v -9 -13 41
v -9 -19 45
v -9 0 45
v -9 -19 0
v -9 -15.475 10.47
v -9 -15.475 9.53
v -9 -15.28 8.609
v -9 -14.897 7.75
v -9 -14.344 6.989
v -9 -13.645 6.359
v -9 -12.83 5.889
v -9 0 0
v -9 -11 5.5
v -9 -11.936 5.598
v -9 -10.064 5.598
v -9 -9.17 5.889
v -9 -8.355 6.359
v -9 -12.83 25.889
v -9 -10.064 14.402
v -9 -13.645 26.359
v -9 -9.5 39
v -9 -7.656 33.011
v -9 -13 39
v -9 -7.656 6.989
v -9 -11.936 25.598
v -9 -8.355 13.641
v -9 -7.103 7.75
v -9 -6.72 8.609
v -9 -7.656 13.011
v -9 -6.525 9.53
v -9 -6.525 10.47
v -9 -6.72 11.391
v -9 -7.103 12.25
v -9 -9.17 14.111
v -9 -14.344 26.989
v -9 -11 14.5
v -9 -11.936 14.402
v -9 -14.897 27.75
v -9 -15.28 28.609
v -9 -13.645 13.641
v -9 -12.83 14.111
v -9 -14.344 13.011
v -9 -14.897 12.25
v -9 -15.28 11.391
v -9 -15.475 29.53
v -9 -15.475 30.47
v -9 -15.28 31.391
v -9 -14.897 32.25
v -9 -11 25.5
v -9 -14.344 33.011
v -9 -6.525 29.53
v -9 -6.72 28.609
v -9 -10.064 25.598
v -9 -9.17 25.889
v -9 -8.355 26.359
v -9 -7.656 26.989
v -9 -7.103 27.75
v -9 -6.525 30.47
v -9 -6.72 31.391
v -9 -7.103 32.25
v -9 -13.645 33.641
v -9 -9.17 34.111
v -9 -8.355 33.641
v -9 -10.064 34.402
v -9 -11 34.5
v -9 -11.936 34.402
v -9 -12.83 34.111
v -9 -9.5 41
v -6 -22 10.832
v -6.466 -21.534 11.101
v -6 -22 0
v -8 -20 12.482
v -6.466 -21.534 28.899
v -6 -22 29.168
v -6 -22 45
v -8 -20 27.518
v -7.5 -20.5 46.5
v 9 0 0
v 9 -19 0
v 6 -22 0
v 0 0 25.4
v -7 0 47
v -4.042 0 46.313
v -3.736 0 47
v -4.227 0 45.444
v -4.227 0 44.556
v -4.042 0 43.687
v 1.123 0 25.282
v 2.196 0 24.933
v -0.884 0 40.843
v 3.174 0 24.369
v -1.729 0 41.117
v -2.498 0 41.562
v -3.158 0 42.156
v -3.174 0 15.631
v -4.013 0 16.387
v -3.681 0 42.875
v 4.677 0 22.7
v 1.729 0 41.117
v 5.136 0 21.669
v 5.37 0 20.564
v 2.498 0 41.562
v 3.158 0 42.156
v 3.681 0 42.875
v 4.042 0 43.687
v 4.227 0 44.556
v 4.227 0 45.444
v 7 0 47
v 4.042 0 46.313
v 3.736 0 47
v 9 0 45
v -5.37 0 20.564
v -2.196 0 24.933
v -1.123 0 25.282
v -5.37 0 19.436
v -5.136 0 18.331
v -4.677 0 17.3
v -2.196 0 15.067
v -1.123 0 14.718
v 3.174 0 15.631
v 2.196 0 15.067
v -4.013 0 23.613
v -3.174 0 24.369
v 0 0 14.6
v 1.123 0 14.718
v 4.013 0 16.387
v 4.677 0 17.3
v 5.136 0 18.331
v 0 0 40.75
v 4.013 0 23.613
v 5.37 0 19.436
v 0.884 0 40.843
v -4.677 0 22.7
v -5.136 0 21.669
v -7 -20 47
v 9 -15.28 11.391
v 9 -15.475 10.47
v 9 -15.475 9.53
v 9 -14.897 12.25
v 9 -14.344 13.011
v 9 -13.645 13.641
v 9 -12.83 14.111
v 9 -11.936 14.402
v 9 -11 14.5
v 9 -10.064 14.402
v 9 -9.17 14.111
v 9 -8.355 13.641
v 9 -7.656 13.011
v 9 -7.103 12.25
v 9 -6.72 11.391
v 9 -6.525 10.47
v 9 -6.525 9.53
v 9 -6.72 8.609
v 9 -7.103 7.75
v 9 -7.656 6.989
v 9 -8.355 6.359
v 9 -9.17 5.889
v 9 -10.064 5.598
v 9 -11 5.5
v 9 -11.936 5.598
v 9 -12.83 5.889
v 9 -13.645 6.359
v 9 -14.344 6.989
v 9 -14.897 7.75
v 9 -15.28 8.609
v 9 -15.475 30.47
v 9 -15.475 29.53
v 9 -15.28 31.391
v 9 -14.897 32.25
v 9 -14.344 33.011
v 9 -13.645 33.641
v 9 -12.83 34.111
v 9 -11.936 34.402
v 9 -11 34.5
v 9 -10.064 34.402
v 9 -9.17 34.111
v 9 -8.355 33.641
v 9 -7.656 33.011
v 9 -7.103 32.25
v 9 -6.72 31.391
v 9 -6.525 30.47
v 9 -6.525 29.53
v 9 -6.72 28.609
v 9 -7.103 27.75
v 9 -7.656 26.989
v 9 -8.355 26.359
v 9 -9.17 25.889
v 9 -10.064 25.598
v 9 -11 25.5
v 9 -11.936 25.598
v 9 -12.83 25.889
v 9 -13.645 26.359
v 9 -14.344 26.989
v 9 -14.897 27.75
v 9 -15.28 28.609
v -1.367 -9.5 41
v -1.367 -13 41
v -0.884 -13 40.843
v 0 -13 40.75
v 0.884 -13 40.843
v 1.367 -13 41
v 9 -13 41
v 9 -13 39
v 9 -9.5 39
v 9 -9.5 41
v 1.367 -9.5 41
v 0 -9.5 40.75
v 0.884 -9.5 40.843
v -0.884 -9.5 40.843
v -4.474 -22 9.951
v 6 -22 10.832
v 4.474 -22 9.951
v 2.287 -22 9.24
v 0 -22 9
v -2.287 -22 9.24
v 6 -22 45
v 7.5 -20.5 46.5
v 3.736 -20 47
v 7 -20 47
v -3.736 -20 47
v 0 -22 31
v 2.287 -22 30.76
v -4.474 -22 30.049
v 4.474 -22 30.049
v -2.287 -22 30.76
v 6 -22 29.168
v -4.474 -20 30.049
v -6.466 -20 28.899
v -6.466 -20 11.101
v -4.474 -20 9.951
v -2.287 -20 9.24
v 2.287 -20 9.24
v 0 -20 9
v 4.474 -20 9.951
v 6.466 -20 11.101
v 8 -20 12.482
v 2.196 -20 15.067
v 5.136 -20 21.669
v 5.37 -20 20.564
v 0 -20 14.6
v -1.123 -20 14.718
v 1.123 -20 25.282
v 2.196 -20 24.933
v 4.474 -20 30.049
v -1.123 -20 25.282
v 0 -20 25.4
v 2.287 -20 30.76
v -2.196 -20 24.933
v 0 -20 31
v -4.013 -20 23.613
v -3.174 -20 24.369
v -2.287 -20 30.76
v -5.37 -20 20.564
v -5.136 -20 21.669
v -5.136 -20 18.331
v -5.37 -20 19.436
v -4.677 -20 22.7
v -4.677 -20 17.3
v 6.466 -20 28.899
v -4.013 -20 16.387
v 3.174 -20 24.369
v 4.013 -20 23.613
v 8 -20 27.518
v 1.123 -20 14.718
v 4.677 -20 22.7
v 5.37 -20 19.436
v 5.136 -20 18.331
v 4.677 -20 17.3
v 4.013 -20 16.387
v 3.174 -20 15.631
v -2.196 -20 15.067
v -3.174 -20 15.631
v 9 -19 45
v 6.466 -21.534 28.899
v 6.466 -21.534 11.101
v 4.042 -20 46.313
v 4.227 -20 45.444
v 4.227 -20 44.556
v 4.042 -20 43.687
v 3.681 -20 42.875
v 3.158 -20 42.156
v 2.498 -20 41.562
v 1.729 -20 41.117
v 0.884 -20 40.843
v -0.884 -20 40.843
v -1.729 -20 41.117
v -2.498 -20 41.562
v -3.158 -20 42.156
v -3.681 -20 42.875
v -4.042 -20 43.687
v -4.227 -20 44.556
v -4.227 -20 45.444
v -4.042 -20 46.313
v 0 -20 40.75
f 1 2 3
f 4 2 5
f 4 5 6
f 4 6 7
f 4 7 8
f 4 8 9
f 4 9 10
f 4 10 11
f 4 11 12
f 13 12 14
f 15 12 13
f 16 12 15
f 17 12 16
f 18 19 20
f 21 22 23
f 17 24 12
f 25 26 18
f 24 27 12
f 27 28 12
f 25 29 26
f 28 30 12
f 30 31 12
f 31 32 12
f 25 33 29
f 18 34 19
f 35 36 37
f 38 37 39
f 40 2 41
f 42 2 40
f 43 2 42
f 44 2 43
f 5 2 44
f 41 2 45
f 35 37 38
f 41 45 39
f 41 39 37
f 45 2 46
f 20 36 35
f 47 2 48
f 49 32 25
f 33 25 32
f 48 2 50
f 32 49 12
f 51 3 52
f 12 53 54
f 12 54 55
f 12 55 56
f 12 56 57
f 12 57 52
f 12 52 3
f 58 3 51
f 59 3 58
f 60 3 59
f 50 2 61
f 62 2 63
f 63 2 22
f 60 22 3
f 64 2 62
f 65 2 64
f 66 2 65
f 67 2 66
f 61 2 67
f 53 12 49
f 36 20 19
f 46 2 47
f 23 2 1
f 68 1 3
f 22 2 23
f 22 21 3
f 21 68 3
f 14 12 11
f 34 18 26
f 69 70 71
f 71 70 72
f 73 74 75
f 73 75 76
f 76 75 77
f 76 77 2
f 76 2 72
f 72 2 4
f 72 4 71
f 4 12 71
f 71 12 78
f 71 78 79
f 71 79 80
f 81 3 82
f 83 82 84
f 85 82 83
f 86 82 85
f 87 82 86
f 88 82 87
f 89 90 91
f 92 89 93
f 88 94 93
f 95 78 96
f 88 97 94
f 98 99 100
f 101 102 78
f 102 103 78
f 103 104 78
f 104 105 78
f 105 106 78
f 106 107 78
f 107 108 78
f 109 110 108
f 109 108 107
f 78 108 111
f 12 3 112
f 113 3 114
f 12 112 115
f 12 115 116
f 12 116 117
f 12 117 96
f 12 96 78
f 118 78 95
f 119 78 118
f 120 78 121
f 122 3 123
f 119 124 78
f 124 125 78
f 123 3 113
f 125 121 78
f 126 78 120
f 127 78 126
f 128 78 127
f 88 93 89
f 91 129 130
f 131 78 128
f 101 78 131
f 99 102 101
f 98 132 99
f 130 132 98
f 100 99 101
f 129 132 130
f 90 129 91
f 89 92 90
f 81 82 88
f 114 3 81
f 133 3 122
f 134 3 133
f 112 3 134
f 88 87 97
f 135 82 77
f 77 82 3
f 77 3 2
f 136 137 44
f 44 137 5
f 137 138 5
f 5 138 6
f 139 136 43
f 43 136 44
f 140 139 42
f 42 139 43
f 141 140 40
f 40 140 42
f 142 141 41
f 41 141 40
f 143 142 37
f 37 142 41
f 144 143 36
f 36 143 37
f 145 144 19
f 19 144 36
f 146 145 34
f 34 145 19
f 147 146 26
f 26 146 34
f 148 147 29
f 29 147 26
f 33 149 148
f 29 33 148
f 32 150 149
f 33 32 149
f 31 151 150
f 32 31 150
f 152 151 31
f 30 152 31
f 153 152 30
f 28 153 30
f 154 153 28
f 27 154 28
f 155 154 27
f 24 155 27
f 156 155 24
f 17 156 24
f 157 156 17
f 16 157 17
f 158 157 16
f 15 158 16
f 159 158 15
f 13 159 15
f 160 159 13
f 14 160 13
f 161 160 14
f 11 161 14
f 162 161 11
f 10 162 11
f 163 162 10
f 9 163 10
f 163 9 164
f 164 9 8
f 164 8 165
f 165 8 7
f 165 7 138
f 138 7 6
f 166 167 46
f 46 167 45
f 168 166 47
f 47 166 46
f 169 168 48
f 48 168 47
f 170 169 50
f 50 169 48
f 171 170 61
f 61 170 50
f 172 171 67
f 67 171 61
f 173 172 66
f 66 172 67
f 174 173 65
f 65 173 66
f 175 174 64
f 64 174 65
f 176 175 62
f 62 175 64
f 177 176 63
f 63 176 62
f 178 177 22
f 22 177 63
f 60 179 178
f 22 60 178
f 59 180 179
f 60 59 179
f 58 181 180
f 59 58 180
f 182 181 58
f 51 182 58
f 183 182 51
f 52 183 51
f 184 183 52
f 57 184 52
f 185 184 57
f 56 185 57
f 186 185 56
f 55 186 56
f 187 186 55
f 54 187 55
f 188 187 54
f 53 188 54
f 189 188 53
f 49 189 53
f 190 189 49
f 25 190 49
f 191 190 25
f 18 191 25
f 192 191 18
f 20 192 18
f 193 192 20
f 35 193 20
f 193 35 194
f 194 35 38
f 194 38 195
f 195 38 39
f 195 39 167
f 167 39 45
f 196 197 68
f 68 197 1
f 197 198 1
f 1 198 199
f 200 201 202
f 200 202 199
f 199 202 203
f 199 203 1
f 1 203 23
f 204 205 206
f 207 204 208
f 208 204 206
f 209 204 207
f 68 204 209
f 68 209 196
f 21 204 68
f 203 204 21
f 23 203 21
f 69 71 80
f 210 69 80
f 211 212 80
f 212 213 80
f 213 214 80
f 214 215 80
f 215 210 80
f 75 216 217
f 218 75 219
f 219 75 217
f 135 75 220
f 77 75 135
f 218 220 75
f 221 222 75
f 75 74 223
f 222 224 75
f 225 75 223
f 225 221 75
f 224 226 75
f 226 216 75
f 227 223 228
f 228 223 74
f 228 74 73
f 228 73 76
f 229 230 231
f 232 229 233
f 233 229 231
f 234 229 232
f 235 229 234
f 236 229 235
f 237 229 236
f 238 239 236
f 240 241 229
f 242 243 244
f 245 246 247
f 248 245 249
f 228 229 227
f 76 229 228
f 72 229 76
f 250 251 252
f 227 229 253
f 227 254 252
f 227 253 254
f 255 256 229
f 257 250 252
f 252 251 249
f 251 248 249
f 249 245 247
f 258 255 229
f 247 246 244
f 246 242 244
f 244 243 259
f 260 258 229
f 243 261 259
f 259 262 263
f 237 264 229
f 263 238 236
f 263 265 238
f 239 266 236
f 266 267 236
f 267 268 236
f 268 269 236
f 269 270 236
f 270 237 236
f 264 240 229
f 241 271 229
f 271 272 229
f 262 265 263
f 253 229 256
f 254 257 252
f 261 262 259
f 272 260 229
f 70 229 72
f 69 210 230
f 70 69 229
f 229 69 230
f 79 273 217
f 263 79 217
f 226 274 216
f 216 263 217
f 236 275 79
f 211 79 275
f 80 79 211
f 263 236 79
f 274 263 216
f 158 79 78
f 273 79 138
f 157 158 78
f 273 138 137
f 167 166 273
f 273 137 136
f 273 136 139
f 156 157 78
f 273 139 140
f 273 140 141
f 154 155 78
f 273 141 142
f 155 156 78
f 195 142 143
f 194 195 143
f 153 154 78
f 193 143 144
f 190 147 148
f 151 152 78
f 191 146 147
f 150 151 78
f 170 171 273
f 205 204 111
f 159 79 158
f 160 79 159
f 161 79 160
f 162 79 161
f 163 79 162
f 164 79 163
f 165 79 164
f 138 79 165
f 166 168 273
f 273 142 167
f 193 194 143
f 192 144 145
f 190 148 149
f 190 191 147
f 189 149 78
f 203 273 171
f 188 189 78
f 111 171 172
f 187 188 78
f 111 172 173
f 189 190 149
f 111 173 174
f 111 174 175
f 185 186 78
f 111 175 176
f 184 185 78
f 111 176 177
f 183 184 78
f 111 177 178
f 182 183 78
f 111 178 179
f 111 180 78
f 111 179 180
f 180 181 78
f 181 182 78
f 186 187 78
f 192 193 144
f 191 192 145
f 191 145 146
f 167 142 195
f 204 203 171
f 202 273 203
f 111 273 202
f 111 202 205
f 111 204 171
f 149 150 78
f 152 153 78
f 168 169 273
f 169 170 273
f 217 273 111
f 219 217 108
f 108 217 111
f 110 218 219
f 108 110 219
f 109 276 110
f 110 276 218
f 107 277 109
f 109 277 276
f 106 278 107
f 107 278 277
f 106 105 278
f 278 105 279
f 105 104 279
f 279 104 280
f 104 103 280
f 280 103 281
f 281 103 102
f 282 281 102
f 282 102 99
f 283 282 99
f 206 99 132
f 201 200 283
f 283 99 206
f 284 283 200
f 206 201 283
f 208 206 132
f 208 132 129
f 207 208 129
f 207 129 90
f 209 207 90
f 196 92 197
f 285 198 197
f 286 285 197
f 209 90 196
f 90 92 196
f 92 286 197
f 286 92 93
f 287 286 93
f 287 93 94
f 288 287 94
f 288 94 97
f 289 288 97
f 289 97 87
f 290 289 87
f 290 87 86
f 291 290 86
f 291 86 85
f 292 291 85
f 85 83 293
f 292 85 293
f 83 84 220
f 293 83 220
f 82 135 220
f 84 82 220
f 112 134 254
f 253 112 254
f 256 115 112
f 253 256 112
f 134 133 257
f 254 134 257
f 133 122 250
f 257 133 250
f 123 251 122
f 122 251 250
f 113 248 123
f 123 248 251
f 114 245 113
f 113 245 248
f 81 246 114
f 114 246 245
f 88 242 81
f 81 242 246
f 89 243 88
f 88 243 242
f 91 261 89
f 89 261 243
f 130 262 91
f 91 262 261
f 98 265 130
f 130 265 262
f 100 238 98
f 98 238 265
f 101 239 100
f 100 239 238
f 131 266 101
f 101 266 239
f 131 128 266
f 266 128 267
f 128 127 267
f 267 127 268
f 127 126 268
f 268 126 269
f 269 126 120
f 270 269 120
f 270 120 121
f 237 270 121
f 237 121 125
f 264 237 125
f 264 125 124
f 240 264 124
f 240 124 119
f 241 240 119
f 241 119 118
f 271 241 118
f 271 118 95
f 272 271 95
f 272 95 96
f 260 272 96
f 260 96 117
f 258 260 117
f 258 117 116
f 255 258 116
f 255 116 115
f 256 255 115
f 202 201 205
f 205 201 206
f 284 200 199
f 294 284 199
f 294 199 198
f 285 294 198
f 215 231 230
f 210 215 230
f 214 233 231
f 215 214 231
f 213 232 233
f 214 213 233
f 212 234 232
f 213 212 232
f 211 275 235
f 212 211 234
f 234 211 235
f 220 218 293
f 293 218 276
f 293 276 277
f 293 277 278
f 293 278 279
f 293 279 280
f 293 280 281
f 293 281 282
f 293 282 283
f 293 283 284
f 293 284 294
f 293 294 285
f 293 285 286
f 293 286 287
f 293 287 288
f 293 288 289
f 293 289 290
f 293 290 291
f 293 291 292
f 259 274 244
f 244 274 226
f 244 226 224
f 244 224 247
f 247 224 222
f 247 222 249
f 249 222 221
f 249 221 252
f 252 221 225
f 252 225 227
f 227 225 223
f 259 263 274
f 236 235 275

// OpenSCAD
// file: inc/inc/functions.scad
// PRUSA iteration3
// Functions used in many files
// GNU GPL v3
// Josef Průša <josefprusa@me.com>
// Václav 'ax' Hůla <axtheb@gmail.com>
// Vlnofka <>
// http://www.reprap.org/wiki/Prusa_Mendel
// http://github.com/prusajr/PrusaMendel

module roundcorner(diameter){
	difference(){
		cube(size = [diameter,diameter,99], center = false);
		translate(v = [diameter, diameter, 0]) cylinder(h = 100, r=diameter, center=true);
	}
}
module nut(d,h,horizontal=true){
    cornerdiameter =  (d / 2) / cos (180 / 6);
    cylinder(h = h, r = cornerdiameter, $fn = 6);
    if(horizontal){
        for(i = [1:6]){
            rotate([0,0,60*i]) translate([-cornerdiameter-0.2,0,0]) rotate([0,0,-45]) cube([2,2,h]);
        }
    }
}

// Based on nophead research
module polyhole(d, h, center=false) {
    n = max(round(2 * d),3);
    rotate([0,0,180])
        cylinder(h = h, r = (d / 2) / cos (180 / n), $fn = n);
}

// make it interchangeable between this and cylinder
module cylinder_poly(r, h, center=false){
    polyhole(d=r*2, h=h, center=center);
}

module fillet(radius, height=100, $fn=0) {
    //this creates acutal fillet
    translate([-radius, -radius, -height/2-0.01])
        difference() {
            cube([radius*2, radius*2, height+0.02]);
            cylinder(r=radius, h=height+0.02, $fn=$fn);
        }
}

module cube_fillet(size, radius=-1, vertical=[3,3,3,3], top=[0,0,0,0], bottom=[0,0,0,0], center=false, $fn=0){
    //
    if (center) {
        cube_fillet_inside(size, radius, vertical, top, bottom, $fn);
    } else {
        translate([size[0]/2, size[1]/2, size[2]/2])
            cube_fillet_inside(size, radius, vertical, top, bottom, $fn);
    }
}

module cube_negative_fillet(size, radius=-1, vertical=[3,3,3,3], top=[0,0,0,0], bottom=[0,0,0,0], $fn=0){

    j=[1,0,1,0];

    for (i=[0:3]) {
        if (radius > -1) {
            rotate([0, 0, 90*i]) translate([size[1-j[i]]/2, size[j[i]]/2, 0]) fillet(radius, size[2], $fn=$fn);
        } else {
            rotate([0, 0, 90*i]) translate([size[1-j[i]]/2, size[j[i]]/2, 0]) fillet(vertical[i], size[2], $fn=$fn);
        }
        rotate([90*i, -90, 0]) translate([size[2]/2, size[j[i]]/2, 0 ]) fillet(top[i], size[1-j[i]], $fn=$fn);
        rotate([90*(4-i), 90, 0]) translate([size[2]/2, size[j[i]]/2, 0]) fillet(bottom[i], size[1-j[i]], $fn=$fn);

    }
}

module cube_fillet_inside(size, radius=-1, vertical=[3,3,3,3], top=[0,0,0,0], bottom=[0,0,0,0], $fn=0){
    //makes CENTERED cube with round corners
    // if you give it radius, it will fillet vertical corners.
    //othervise use vertical, top, bottom arrays
    //when viewed from top, it starts in upper right corner (+x,+y quadrant) , goes counterclockwise
    //top/bottom fillet starts in direction of Y axis and goes CCW too


    if (radius == 0) {
        cube(size, center=true);
    } else {
        difference() {
            cube(size, center=true);
            cube_negative_fillet(size, radius, vertical, top, bottom, $fn);
        }
    }
}


module nema17(places=[1,1,1,1], size=15.5, h=10, holes=false, shadow=false, $fn=24){
    for (i=[0:3]) {
        if (places[i] == 1) {
            rotate([0, 0, 90*i]) translate([size, size, 0]) {
                if (holes) {
                    #rotate([0, 0, -90*i])  translate([0,0,-10]) screw(r=1.7, slant=false, head_drop=13, $fn=$fn, h=h+12);
                } else {
                    rotate([0, 0, -90*i]) cylinder(h=h, r=5.5, $fn=$fn);
                }
            }
        }
    }
    if (shadow != false) {
        %translate ([0, 0, shadow+21+3]) cube([42,42,42], center = true);
    //flange
        %translate ([0, 0, shadow+21+3-21-1]) cylinder(r=11,h=2, center = true, $fn=20);
    //shaft
        %translate ([0, 0, shadow+21+3-21-7]) cylinder(r=2.5,h=14, center = true);
    }
}

module screw(h=20, r=2, r_head=3.5, head_drop=0, slant=true, poly=false, $fn=0){
    //makes screw with head
    //for substraction as screw hole
    if (poly) {
        cylinder_poly(h=h, r=r, $fn=$fn);
    } else {
        cylinder(h=h, r=r, $fn=$fn);
    }
    if (slant) {
        translate([0, 0, head_drop-0.01]) cylinder(h=r_head, r2=0, r1=r_head, $fn=$fn);
    }

    if (head_drop > 0) {
        translate([0, 0, -0.01]) cylinder(h=head_drop+0.01, r=r_head, $fn=$fn);
    }
}
module screw_cylinder(r_head=5.25,r=3.25,head_drop=6.2,slant=false){
	screw(r_head=r_head,head_drop=head_drop,r=r, slant=slant);

}

//screw_cylinder();
//cube_fillet([10,20,30], vertical=[3,2,0,0], top=[3,2,0,5], bottom=[3,2,0,5]);
//cube_fillet([10,20,30], radius=2, top=[7,2,7,2]);
// file: inc/conf_bushing.scad
// PRUSA iteration3
// Bushing and bering dimensions
// GNU GPL v3
// Václav 'ax' Hůla <axtheb@gmail.com>
// http://www.reprap.org/wiki/Prusa_Mendel
// http://github.com/josefprusa/Prusa3
//

// each config is in form[r_rod, r, h, type, name] where:
//     r_rod  is smooth rod radius [0]
//     r is outer bushing radius needed for tight fit or bearing radius with loose fit [1]
//     h is barrel length [2]
//     type is 0 for linear bearings, 1 is for bushings which needs to be enclosed fully. [3]
//       type 1 may have flange, but type 0 not
//     name is human readable name [4]

//bushings
conf_b_bushing8 = [4, 5.1, 10, 1, "Tube shaped bushing like igus J(V)FM 0810-10"];
conf_b_bushing10 = [5, 6.1, 10, 1, "Tube shaped bushing with id=10mm, od=12mm and length of at least 10mm, like J(V)FM 1012-10"];
conf_b_bushing12 = [6, 7.1, 15, 1, "Tube shaped bushing with id=12mm, od=14mm and length of at least 15mm, like SF-1 1215"];

conf_b_bronze8 = [4, 8, 11, 1, "bronze self-aligning bushing, 8mm"];

//shorter beaings (two on each Z axis)
conf_b_lm8uu = [4, 7.7, 24, 0, "lm8uu bearing (standard)"];
conf_b_lm10uu = [5, 9.7, 29, 0, "lm10uu bearing (10mm smooth rod)"];
conf_b_lme8uu =[4, 8.2, 25, 0, "lme8uu bearing"];
conf_b_lm12uu = [6, 10.6, 30, 0, "lm12uu bearing (12mm smooth rod)"];

//longer bearings
conf_b_lm8luu = [4, 7.7, 45, 0, "lm8luu bearing (double length)"];
conf_b_lm10luu = [5, 9.7, 55, 0, "lm10luu bearing (10mm smooth rod, long)"];
conf_b_lm12luu = [6, 10.6, 57, 0, "lm12luu bearing (12mm, double length)"];


// Select idler bearing size **************************************************
// [outer_diameter, width, inner_diameter, uses_guide]

// roughly sorted by desirability

// one bearing with guides
// Select by availability, smaller is better.
bearing_623 = [10, 4, 3, 1, "623 bearing"];
bearing_624 = [13, 5, 4, 1, "624 bearing"];
bearing_625 = [16, 5, 5, 1, "625 bearing"];

// two bearings side by side - for use without bearing guides.
// Not recomended anymore
bearing_625_double = [16, 10, 5, 0, "625 bearing x2"];
bearing_624_double = [13, 10, 4, 0, "624 bearing x2"];
bearing_623_double = [10, 8, 3, 0, "623 bearing"];

// 608 [standard skate bearings] with bearing guide
bearing_608 = [22, 7, 8, 1, "608 bearing"];
// 608 bearings with fender washers.
// the belt brushes both against the carriage and the washers.
bearing_608_washers = [22, 10, 8, 0, "608 bearing"];



// Select Z axis threaded rod size **************************************************
// [threaded_rod_diametar, threaded_rod_hole_r, nut_diameter, rod_trap_translate, rod_trap_cube_fillet ]

z_axis_threaded_rod_type_m5 = [5, 3, 4.6, [-12, 11, 0], [20, 14, 10]];
z_axis_threaded_rod_type_m8 = [8, 4.5, (14.38+0.5)/2, [-11, 9.3, 0], [20, 16, 10]];
// file: inc/metric.scad
// PRUSA iteration3
// Default metric sizes
// GNU GPL v3
// Josef Průša <josefprusa@me.com>
// http://www.reprap.org/wiki/Prusa_Mendel
// http://github.com/prusajr/PrusaMendel

// DONT CHANGE THIS FILE! ALTER VALUES IN CONFIGURATION.SCAD INSTEAD

// RODS

threaded_rod_diameter = 8.7;
threaded_rod_diameter_horizontal = 9;
smooth_bar_diameter = 8;
smooth_bar_diameter_horizontal = 8.5;
smooth_big_bar_diameter_horizontal = 10.8;

// Nuts and bolts


m8_diameter = 9;
//iso4032 says Width across corners = 14.38
m8_nut_diameter = 14.1;

m4_diameter = 4.7;
//iso4032 says 7.66
m4_nut_diameter = 7.6;
m4_nut_diameter_horizontal = 8.15;

m3_diameter = 3.4;
//iso4032 says 6.01
m3_nut_diameter = 5.3;
m3_nut_diameter_horizontal = 6.8;
m3_washer_diameter = 6.9;

// Motors

motor_shaft = 5.5;
// file: inc/configuration.scad
// PRUSA iteration3
// Configuration file
// GNU GPL v3
// Josef Průša <josefprusa@me.com>
// Václav 'ax' Hůla <axtheb@gmail.com>
// http://www.reprap.org/wiki/Prusa_Mendel
// http://github.com/prusajr/PrusaMendel

include <metric.scad>;
include <conf_bushing.scad>;

// Custom settings here, tailor to your supplies and print settings

layer_height = 0.3;
width_over_thickness = 2.2;

// Select your belt type ******************************************************

//T2.5
belt_tooth_distance = 2.5;
belt_tooth_ratio = 0.75;

//T5 (strongly discouraged)
//belt_tooth_distance = 5;
//belt_tooth_ratio = 0.75;

//HTD3
//belt_tooth_distance = 3;
//belt_tooth_ratio = 0.75;

//MXL
//belt_tooth_distance = 2.032;
//belt_tooth_ratio = 0.64;

//GT2 there is bunch of GT2 belts with different tooth-to-tooth distance
//adjust to your needs
//belt_tooth_distance = 2;
//belt_tooth_ratio = 0.5;

// For T type belts you will probably want 0.8mm or so.
belt_thickness = 1.75;

// Choose bearing/bushing configuration ***************************************
// conf_b_* are in inc/conf_bushing.scad

bushing_xy = conf_b_lm8uu;
bushing_z = conf_b_lm8uu;
// for longer bearings use one shorter in x-carriage to make place for belt attachment
// by default use same as xy
bushing_carriage = bushing_xy;

// Select idler bearing size **************************************************
// [outer_diameter, width, inner_diameter, uses_guide]
// 608 [standard skate bearings] with bearing guide
bearing_608 = [22, 7, 8, 1];
//608 bearings with fender washers. Not good at all, the belt brushes against the carriage
bearing_608_washers = [22, 10, 8, 0];
// one 625 with guides
bearing_625 = [16, 5, 5, 1];
// two 625 - for use without bearing guides.
bearing_625_double = [16, 10, 5, 0];

// those two here are really good:
bearing_624_double = [13, 9, 4, 0];
// this one has roughly same diameter as pulley, makes belt parallel so its prettier
bearing_623_double = [10, 8, 3, 0];

idler_bearing = bearing_608;

//Select carriage lenght
// 30 for single carriage extruder (two holes with centers 30mm apart)
// 50 for wade or single with fan (three holes, 30-20)
// 80 for full length carriage (four holes, 30-20-30)

carriage_l_base = 50;

// Fillets ********************************************************************
// mostly cosmetic, except z axis.
// 0 = no fillets
// 1 = fillet

use_fillets = 1;

//set to 0 for single plate (affects z axis and screws that attach RP parts tp frame)
i_am_box = 0;

//if you do your own plate and can move bottom Z screws 5mm up set this to 0 to
//get stronger motor mount. Only for i_am_box = 0
i_want_to_use_single_plate_dxf_and_make_my_z_weaker = 1;

//radius of long threaded rod on Y frame
//Use 5.4 for M10 or 4.4 for M8
y_threaded_rod_long_r = 4.4;

// Thickness of the XZ plate board. Leave at 12 for single plate
board_thickness = 12;

// END of custom settings


// You are not supposed to change this
board_to_xz_distance = 26;
xaxis_rod_distance = 45;

//calculated from settings
single_wall_width = width_over_thickness * layer_height;

idler_width = (idler_bearing[1] > 7 ? idler_bearing[1] : 7) + 2.5 * idler_bearing[3] ;

//deltas are used to enlarge parts for bigger bearings 
xy_delta = ((bushing_xy[1] <= 7.7) ? 0 : bushing_xy[1] - 7.7) * 0.9;
z_delta = (bushing_z[1] <= 7.7) ? 0 : bushing_z[1] - 7.7;

// CHANGE ONLY THE STUFF YOU KNOW
// IT WILL REPLACE DEFAULT SETTING

// RODS

// threaded_rod_diameter = 0;
// threaded_rod_diameter_horizontal = 0;
// smooth_bar_diameter = 0;
// smooth_bar_diameter_horizontal = 0;

// Nuts and bolts

// m8_diameter = 0;
// m8_nut_diameter = 0;

// m4_diameter = 0;
// m4_nut_diameter = 0;

// m3_diameter = 0;
// m3_nut_diameter = 0;

// Bushing holder

// bushing_core_diameter = smooth_bar_diameter;
// bushing_material_thickness = 0;

///counted stuff
m3_nut_diameter_bigger = ((m3_nut_diameter  / 2) / cos (180 / 6))*2;

// functions
include <inc/functions.scad>

// These constants define the geometry of the complete-printer.scad

//x_smooth_rod_length=325;
//y_smooth_rod_length=405;
//z_smooth_rod_length=235;
bed_x_size=225;
bed_y_size=225;

x_smooth_rod_length=460+board_thickness*2; // 492 for 16mm thickness; 484 for 12mm thickness
y_smooth_rod_length=470;
z_smooth_rod_length=405;
// main file
// PRUSA iteration3
// Y frame corners
// GNU GPL v3
// Josef Průša <iam@josefprusa.cz> and contributors
// http://www.reprap.org/wiki/Prusa_Mendel
// http://prusamendel.org

include <inc/configuration.scad>

module corner_base(){	
 translate([-9,-11,0])cube([18,22,47]);
}

module corner_holes(){
 translate([-11,-11,0]){
  // Bottom hole
  translate([0,11,10]) rotate([0,90,0]) translate([0,0,-5]) cylinder(h = 270, r=threaded_rod_diameter_horizontal/2, $fn=30);
  // Top hole
  translate([0,11,30]) rotate([0,90,0]) translate([0,0,-5]) cylinder(h = 270, r=threaded_rod_diameter_horizontal/2, $fn=30);
  // Middle hole
  translate([11,0,20]) rotate([0,0,90]) rotate([0,90,0]) translate([0,0,-5]) cylinder(h = 270, r=smooth_big_bar_diameter_horizontal/2, $fn=30);

  // Washer hole
  translate([11,-3,20]) rotate([0,0,90]) rotate([0,90,0]) translate([0,0,-5]) cylinder(h = 10, r=11, $fn=30);

  // Top smooth rod insert
  // Smooth rod place
  translate([11,2,45]) rotate([0,90,90]) cylinder(h = 270, r=smooth_bar_diameter_horizontal/2, $fn=30); 
  // Ziptie
  translate([-5,9,39])  cube([30,3.5,2]);
 }
}

module corner_fancy(){
 // Side corner cutouts
  translate([-8,-9,0]) rotate([0,0,-45-180]) translate([-15,0,-1]) cube([30,30,51]);
  translate([8,-9,0]) rotate([0,0,45-180]) translate([-15,0,-1]) cube([30,30,51]);
 // Top corner cutouts
  translate([7,0,49-2]) rotate([0,45,0]) translate([-15,-15,0]) cube([30,30,30]);
  translate([-7,0,49-2]) rotate([0,-45,0]) translate([-15,-15,0]) cube([30,30,30]);
  rotate([0,0,90]){
   translate([-9,0,49-2]) rotate([0,-45,0]) translate([-15,-15,0]) cube([30,30,30]);
  }
}


// Final part
module corner(){
 // Rotate the part for better printing
 translate([0,0,11]) rotate([-90,0,0]) difference(){
  corner_base();
  corner_holes();
  corner_fancy();
 }
}

rotate([90,0,0]) corner();
